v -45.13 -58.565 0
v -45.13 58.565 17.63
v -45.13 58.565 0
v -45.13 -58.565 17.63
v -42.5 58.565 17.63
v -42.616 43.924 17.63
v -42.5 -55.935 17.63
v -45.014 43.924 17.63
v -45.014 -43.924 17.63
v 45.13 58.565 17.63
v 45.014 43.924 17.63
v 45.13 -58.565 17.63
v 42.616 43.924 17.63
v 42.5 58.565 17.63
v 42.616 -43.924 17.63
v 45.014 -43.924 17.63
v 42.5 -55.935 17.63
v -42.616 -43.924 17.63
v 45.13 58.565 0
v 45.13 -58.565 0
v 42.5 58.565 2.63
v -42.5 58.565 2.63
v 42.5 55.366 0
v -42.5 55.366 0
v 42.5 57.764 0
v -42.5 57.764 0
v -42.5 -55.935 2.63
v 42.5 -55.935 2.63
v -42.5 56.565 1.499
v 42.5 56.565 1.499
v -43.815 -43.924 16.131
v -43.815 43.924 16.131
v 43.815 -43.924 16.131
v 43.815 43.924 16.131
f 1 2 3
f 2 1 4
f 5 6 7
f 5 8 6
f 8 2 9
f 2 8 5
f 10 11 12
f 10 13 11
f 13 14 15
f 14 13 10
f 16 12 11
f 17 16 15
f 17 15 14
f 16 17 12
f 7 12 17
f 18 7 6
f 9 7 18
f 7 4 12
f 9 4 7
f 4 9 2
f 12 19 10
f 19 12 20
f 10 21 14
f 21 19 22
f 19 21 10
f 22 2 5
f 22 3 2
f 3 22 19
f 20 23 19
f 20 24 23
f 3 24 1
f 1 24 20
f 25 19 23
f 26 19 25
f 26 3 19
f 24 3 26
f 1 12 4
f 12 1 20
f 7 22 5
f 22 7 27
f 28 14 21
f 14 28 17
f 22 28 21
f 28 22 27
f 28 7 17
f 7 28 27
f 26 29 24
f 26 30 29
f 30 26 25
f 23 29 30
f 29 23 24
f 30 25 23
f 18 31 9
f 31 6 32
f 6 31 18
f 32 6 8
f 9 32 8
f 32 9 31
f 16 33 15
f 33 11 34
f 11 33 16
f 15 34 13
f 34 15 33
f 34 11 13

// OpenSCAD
container_width = 85;
container_height = 114.5;
container_depth = 30;

frame_base = 2.63;
frame_bottom_size = 2.63;
frame_side_size = 2.63;

width = container_width + frame_side_size * 2;
depth = container_height + frame_bottom_size;
height = container_depth / 2.0 + frame_base;

spacing_other_extend = 1.2;
spacing_keep = 4.5;
spacing_depth_offset = -0.5;

tip_size = 1.2;
tip_height = 1.5;
tip_extrude_size = depth * 0.75;

close_tip_offset = 2.0;

module tip(tip_size_difference = 0.0, tip_height_difference = 0.0, size_difference = 0.0, tip_extrude = tip_extrude_size) {
  rotate([90, 0, 0])
    linear_extrude(height = tip_extrude - size_difference, center=true) {
      polygon(points=[
        [-tip_size + tip_size_difference, 0],
        [0, tip_height - tip_height_difference],
        [tip_size - tip_size_difference, 0]
      ]);
    };
}

module keep_hole() {
  cube([width / 2.0 - spacing_keep, depth / 2.0 - spacing_keep, height * 2], center = true);
}

color(c = [0.6, 0.6, 0.6])
  render()
  translate([0, 0, height / 2.0])
  union() {
    difference() {
      translate([0, 0, 0])
        cube([width, depth, height], center = true);

      translate([0, 0, frame_base])
        cube([width - frame_side_size * 2, depth - frame_side_size * 2, height], center = true);

      translate([0, frame_bottom_size / 2.0 + 0.01, frame_base])
        cube([width - frame_side_size * 2, depth - frame_bottom_size, height], center = true);

      translate([0, depth / 2.0 - close_tip_offset, -height / 2.0 - 0.001])
        rotate([0, 0, 90])
        tip(tip_extrude = width - frame_side_size * 2);

      // translate([0, -depth / 2.0 + close_tip_offset, -height / 2.0 - 0.001])
      //   rotate([0, 0, 90])
      //   tip(tip_extrude = width - frame_side_size * 2);

      translate([-width / 2.0 + frame_side_size / 2.0, 0, height / 2.0 + 0.001])
        rotate([180, 0, 0])
        tip();

      translate([width / 2.0 - frame_side_size / 2.0, 0, height / 2.0 + 0.001])
        rotate([180, 0, 0])
        tip();
    };

  };
